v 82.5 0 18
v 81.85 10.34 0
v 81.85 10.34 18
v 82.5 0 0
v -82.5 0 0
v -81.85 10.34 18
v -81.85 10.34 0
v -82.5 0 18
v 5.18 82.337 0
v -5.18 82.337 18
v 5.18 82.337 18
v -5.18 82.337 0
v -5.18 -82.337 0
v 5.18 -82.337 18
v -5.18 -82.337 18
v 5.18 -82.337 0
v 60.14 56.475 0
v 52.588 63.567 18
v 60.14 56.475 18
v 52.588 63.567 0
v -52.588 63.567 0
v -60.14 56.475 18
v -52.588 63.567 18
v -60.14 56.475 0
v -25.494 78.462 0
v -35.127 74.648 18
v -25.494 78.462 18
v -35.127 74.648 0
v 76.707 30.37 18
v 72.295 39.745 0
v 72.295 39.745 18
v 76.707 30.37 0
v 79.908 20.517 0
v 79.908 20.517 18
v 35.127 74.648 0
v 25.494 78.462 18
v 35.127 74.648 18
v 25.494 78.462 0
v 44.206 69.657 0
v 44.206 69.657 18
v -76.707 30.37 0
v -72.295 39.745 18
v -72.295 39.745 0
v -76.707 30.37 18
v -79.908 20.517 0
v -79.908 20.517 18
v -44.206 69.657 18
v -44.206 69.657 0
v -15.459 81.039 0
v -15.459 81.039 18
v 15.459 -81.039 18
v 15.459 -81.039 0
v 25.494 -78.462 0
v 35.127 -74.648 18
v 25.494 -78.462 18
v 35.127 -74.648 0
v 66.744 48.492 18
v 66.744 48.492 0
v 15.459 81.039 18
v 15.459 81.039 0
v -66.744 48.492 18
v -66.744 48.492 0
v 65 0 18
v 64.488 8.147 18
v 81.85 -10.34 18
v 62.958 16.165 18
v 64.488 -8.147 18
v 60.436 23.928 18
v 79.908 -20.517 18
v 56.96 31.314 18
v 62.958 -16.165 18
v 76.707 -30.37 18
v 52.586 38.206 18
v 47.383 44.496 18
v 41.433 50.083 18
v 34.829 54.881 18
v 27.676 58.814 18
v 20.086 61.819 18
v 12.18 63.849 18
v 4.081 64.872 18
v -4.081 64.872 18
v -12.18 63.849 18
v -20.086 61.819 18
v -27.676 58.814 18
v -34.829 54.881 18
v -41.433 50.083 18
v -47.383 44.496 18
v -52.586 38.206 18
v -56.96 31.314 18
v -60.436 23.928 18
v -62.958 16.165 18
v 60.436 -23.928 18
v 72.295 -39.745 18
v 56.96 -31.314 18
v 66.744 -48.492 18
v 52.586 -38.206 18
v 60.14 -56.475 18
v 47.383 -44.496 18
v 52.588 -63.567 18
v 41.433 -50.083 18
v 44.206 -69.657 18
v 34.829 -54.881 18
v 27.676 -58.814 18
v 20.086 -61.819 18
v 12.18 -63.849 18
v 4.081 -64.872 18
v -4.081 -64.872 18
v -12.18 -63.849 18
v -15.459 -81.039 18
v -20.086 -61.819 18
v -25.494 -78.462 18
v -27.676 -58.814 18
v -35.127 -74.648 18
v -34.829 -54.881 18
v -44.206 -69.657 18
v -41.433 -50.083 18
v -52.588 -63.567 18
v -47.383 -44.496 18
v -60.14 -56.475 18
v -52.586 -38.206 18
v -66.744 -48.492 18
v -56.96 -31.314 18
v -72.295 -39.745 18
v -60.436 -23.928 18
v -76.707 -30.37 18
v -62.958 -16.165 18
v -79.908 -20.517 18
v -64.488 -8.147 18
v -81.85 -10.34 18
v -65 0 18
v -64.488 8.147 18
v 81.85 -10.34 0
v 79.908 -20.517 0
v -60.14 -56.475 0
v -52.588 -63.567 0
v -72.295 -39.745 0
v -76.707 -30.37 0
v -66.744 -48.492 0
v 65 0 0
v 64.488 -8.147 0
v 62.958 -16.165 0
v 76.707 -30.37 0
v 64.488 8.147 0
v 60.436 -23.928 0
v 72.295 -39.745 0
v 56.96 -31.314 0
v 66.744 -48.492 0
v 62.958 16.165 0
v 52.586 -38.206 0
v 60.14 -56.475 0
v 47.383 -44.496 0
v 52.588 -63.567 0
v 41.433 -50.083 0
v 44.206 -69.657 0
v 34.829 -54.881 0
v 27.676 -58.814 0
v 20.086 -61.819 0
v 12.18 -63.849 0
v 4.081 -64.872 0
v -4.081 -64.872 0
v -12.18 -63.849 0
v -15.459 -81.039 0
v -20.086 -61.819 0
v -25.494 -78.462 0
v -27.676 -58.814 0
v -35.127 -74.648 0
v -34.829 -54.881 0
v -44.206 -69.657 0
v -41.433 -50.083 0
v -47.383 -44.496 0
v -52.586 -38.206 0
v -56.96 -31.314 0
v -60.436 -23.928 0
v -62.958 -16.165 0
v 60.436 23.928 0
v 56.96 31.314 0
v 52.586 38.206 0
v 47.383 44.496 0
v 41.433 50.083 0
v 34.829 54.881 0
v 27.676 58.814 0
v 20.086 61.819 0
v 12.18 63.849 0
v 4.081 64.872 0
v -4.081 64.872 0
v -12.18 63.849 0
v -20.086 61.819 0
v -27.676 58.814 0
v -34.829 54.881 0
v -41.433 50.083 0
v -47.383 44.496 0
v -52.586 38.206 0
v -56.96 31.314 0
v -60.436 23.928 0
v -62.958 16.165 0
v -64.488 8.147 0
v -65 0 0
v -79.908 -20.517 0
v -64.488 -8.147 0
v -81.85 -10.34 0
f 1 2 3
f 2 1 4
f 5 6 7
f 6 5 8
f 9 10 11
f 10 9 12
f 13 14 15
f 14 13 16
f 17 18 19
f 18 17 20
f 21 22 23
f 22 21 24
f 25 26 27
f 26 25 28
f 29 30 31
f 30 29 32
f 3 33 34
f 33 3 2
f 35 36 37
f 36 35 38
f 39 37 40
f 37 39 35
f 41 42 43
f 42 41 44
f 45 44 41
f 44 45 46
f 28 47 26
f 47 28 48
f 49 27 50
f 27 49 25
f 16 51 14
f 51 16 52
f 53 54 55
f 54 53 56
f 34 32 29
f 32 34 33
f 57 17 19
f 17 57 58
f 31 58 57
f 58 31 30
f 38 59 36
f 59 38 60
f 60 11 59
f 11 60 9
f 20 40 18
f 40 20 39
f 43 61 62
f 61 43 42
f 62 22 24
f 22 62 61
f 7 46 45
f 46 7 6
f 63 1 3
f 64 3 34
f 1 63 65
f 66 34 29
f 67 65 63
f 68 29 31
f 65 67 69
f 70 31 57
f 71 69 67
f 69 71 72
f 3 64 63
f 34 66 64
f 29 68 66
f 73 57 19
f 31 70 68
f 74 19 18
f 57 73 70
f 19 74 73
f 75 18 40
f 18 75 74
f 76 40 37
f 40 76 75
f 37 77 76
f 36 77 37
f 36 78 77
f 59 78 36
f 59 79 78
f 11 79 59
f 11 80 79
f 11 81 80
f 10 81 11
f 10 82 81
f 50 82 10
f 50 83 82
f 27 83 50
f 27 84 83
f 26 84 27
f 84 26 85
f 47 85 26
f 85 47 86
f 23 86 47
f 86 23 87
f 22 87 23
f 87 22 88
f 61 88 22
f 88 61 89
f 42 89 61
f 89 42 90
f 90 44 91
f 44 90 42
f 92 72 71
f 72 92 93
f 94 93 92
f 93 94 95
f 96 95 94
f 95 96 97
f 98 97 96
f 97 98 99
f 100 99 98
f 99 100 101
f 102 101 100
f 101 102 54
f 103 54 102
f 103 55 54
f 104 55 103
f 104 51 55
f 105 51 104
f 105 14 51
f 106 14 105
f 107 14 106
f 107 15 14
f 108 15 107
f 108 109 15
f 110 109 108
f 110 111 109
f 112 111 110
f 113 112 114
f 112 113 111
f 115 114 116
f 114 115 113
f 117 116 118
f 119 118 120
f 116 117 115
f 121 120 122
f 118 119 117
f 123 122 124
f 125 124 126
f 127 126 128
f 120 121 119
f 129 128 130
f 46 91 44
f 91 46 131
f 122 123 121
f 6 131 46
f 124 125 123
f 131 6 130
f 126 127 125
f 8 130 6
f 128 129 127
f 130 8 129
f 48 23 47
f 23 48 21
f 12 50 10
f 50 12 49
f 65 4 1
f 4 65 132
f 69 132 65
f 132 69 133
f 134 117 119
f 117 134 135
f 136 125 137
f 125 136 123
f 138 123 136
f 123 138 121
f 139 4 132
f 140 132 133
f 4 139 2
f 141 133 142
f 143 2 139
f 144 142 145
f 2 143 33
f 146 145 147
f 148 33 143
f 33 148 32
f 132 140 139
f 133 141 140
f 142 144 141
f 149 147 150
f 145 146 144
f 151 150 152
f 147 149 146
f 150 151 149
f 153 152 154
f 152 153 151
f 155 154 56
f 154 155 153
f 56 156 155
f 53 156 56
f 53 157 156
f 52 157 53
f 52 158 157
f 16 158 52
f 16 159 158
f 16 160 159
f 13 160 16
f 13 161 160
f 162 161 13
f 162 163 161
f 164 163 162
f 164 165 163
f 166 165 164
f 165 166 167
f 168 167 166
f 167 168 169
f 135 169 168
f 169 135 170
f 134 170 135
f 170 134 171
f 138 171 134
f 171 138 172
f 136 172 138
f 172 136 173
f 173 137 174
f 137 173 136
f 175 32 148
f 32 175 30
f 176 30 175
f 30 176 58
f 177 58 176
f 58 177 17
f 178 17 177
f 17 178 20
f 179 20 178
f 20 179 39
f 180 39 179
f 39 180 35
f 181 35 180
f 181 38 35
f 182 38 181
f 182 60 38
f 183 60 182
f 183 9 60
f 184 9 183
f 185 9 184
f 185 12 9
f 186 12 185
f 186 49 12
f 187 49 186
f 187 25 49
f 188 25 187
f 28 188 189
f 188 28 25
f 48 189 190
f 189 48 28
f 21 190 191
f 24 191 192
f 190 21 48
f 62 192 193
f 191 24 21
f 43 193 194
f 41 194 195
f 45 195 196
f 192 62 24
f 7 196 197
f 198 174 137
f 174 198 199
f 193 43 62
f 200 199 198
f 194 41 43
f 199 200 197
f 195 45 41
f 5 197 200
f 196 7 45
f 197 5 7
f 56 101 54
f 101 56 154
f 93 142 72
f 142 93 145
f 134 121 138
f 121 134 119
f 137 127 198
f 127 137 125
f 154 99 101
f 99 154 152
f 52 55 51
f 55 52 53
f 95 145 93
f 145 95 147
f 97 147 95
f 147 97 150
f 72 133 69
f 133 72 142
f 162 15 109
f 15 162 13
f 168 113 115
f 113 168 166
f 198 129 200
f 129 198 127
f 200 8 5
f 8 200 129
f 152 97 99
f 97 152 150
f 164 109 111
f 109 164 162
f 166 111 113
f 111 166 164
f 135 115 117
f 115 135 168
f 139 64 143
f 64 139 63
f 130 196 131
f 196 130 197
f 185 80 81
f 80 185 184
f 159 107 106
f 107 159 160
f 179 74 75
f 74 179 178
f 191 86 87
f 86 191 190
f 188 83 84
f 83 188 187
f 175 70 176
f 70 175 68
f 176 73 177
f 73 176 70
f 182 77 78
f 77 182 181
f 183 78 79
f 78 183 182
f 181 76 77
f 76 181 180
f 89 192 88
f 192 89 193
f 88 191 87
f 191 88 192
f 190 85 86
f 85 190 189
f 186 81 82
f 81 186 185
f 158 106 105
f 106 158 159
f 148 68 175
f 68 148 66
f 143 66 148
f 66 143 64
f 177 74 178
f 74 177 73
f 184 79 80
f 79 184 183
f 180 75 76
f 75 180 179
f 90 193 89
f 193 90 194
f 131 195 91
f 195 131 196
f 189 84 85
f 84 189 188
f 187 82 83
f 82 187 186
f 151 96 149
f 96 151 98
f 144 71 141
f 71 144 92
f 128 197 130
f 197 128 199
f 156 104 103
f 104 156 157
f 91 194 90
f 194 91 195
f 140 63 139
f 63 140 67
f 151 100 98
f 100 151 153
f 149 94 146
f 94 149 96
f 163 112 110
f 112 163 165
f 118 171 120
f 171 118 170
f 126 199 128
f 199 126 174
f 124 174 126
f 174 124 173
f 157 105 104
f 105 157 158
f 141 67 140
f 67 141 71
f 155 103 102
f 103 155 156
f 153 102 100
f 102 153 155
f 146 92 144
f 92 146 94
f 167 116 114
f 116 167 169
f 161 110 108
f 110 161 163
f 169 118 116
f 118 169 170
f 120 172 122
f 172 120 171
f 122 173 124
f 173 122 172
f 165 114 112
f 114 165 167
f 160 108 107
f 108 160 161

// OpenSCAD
$fn = 50;


difference() {
	union() {
		translate(v = [0, 0, 0]) {
			rotate(a = [0, 0, 0]) {
				cylinder(h = 18, r = 82.5000000000);
			}
		}
	}
	union() {
		translate(v = [0, 0, 0]) {
			rotate(a = [0, 0, 0]) {
				cylinder(h = 18, r = 65.0000000000);
			}
		}
	}
}
